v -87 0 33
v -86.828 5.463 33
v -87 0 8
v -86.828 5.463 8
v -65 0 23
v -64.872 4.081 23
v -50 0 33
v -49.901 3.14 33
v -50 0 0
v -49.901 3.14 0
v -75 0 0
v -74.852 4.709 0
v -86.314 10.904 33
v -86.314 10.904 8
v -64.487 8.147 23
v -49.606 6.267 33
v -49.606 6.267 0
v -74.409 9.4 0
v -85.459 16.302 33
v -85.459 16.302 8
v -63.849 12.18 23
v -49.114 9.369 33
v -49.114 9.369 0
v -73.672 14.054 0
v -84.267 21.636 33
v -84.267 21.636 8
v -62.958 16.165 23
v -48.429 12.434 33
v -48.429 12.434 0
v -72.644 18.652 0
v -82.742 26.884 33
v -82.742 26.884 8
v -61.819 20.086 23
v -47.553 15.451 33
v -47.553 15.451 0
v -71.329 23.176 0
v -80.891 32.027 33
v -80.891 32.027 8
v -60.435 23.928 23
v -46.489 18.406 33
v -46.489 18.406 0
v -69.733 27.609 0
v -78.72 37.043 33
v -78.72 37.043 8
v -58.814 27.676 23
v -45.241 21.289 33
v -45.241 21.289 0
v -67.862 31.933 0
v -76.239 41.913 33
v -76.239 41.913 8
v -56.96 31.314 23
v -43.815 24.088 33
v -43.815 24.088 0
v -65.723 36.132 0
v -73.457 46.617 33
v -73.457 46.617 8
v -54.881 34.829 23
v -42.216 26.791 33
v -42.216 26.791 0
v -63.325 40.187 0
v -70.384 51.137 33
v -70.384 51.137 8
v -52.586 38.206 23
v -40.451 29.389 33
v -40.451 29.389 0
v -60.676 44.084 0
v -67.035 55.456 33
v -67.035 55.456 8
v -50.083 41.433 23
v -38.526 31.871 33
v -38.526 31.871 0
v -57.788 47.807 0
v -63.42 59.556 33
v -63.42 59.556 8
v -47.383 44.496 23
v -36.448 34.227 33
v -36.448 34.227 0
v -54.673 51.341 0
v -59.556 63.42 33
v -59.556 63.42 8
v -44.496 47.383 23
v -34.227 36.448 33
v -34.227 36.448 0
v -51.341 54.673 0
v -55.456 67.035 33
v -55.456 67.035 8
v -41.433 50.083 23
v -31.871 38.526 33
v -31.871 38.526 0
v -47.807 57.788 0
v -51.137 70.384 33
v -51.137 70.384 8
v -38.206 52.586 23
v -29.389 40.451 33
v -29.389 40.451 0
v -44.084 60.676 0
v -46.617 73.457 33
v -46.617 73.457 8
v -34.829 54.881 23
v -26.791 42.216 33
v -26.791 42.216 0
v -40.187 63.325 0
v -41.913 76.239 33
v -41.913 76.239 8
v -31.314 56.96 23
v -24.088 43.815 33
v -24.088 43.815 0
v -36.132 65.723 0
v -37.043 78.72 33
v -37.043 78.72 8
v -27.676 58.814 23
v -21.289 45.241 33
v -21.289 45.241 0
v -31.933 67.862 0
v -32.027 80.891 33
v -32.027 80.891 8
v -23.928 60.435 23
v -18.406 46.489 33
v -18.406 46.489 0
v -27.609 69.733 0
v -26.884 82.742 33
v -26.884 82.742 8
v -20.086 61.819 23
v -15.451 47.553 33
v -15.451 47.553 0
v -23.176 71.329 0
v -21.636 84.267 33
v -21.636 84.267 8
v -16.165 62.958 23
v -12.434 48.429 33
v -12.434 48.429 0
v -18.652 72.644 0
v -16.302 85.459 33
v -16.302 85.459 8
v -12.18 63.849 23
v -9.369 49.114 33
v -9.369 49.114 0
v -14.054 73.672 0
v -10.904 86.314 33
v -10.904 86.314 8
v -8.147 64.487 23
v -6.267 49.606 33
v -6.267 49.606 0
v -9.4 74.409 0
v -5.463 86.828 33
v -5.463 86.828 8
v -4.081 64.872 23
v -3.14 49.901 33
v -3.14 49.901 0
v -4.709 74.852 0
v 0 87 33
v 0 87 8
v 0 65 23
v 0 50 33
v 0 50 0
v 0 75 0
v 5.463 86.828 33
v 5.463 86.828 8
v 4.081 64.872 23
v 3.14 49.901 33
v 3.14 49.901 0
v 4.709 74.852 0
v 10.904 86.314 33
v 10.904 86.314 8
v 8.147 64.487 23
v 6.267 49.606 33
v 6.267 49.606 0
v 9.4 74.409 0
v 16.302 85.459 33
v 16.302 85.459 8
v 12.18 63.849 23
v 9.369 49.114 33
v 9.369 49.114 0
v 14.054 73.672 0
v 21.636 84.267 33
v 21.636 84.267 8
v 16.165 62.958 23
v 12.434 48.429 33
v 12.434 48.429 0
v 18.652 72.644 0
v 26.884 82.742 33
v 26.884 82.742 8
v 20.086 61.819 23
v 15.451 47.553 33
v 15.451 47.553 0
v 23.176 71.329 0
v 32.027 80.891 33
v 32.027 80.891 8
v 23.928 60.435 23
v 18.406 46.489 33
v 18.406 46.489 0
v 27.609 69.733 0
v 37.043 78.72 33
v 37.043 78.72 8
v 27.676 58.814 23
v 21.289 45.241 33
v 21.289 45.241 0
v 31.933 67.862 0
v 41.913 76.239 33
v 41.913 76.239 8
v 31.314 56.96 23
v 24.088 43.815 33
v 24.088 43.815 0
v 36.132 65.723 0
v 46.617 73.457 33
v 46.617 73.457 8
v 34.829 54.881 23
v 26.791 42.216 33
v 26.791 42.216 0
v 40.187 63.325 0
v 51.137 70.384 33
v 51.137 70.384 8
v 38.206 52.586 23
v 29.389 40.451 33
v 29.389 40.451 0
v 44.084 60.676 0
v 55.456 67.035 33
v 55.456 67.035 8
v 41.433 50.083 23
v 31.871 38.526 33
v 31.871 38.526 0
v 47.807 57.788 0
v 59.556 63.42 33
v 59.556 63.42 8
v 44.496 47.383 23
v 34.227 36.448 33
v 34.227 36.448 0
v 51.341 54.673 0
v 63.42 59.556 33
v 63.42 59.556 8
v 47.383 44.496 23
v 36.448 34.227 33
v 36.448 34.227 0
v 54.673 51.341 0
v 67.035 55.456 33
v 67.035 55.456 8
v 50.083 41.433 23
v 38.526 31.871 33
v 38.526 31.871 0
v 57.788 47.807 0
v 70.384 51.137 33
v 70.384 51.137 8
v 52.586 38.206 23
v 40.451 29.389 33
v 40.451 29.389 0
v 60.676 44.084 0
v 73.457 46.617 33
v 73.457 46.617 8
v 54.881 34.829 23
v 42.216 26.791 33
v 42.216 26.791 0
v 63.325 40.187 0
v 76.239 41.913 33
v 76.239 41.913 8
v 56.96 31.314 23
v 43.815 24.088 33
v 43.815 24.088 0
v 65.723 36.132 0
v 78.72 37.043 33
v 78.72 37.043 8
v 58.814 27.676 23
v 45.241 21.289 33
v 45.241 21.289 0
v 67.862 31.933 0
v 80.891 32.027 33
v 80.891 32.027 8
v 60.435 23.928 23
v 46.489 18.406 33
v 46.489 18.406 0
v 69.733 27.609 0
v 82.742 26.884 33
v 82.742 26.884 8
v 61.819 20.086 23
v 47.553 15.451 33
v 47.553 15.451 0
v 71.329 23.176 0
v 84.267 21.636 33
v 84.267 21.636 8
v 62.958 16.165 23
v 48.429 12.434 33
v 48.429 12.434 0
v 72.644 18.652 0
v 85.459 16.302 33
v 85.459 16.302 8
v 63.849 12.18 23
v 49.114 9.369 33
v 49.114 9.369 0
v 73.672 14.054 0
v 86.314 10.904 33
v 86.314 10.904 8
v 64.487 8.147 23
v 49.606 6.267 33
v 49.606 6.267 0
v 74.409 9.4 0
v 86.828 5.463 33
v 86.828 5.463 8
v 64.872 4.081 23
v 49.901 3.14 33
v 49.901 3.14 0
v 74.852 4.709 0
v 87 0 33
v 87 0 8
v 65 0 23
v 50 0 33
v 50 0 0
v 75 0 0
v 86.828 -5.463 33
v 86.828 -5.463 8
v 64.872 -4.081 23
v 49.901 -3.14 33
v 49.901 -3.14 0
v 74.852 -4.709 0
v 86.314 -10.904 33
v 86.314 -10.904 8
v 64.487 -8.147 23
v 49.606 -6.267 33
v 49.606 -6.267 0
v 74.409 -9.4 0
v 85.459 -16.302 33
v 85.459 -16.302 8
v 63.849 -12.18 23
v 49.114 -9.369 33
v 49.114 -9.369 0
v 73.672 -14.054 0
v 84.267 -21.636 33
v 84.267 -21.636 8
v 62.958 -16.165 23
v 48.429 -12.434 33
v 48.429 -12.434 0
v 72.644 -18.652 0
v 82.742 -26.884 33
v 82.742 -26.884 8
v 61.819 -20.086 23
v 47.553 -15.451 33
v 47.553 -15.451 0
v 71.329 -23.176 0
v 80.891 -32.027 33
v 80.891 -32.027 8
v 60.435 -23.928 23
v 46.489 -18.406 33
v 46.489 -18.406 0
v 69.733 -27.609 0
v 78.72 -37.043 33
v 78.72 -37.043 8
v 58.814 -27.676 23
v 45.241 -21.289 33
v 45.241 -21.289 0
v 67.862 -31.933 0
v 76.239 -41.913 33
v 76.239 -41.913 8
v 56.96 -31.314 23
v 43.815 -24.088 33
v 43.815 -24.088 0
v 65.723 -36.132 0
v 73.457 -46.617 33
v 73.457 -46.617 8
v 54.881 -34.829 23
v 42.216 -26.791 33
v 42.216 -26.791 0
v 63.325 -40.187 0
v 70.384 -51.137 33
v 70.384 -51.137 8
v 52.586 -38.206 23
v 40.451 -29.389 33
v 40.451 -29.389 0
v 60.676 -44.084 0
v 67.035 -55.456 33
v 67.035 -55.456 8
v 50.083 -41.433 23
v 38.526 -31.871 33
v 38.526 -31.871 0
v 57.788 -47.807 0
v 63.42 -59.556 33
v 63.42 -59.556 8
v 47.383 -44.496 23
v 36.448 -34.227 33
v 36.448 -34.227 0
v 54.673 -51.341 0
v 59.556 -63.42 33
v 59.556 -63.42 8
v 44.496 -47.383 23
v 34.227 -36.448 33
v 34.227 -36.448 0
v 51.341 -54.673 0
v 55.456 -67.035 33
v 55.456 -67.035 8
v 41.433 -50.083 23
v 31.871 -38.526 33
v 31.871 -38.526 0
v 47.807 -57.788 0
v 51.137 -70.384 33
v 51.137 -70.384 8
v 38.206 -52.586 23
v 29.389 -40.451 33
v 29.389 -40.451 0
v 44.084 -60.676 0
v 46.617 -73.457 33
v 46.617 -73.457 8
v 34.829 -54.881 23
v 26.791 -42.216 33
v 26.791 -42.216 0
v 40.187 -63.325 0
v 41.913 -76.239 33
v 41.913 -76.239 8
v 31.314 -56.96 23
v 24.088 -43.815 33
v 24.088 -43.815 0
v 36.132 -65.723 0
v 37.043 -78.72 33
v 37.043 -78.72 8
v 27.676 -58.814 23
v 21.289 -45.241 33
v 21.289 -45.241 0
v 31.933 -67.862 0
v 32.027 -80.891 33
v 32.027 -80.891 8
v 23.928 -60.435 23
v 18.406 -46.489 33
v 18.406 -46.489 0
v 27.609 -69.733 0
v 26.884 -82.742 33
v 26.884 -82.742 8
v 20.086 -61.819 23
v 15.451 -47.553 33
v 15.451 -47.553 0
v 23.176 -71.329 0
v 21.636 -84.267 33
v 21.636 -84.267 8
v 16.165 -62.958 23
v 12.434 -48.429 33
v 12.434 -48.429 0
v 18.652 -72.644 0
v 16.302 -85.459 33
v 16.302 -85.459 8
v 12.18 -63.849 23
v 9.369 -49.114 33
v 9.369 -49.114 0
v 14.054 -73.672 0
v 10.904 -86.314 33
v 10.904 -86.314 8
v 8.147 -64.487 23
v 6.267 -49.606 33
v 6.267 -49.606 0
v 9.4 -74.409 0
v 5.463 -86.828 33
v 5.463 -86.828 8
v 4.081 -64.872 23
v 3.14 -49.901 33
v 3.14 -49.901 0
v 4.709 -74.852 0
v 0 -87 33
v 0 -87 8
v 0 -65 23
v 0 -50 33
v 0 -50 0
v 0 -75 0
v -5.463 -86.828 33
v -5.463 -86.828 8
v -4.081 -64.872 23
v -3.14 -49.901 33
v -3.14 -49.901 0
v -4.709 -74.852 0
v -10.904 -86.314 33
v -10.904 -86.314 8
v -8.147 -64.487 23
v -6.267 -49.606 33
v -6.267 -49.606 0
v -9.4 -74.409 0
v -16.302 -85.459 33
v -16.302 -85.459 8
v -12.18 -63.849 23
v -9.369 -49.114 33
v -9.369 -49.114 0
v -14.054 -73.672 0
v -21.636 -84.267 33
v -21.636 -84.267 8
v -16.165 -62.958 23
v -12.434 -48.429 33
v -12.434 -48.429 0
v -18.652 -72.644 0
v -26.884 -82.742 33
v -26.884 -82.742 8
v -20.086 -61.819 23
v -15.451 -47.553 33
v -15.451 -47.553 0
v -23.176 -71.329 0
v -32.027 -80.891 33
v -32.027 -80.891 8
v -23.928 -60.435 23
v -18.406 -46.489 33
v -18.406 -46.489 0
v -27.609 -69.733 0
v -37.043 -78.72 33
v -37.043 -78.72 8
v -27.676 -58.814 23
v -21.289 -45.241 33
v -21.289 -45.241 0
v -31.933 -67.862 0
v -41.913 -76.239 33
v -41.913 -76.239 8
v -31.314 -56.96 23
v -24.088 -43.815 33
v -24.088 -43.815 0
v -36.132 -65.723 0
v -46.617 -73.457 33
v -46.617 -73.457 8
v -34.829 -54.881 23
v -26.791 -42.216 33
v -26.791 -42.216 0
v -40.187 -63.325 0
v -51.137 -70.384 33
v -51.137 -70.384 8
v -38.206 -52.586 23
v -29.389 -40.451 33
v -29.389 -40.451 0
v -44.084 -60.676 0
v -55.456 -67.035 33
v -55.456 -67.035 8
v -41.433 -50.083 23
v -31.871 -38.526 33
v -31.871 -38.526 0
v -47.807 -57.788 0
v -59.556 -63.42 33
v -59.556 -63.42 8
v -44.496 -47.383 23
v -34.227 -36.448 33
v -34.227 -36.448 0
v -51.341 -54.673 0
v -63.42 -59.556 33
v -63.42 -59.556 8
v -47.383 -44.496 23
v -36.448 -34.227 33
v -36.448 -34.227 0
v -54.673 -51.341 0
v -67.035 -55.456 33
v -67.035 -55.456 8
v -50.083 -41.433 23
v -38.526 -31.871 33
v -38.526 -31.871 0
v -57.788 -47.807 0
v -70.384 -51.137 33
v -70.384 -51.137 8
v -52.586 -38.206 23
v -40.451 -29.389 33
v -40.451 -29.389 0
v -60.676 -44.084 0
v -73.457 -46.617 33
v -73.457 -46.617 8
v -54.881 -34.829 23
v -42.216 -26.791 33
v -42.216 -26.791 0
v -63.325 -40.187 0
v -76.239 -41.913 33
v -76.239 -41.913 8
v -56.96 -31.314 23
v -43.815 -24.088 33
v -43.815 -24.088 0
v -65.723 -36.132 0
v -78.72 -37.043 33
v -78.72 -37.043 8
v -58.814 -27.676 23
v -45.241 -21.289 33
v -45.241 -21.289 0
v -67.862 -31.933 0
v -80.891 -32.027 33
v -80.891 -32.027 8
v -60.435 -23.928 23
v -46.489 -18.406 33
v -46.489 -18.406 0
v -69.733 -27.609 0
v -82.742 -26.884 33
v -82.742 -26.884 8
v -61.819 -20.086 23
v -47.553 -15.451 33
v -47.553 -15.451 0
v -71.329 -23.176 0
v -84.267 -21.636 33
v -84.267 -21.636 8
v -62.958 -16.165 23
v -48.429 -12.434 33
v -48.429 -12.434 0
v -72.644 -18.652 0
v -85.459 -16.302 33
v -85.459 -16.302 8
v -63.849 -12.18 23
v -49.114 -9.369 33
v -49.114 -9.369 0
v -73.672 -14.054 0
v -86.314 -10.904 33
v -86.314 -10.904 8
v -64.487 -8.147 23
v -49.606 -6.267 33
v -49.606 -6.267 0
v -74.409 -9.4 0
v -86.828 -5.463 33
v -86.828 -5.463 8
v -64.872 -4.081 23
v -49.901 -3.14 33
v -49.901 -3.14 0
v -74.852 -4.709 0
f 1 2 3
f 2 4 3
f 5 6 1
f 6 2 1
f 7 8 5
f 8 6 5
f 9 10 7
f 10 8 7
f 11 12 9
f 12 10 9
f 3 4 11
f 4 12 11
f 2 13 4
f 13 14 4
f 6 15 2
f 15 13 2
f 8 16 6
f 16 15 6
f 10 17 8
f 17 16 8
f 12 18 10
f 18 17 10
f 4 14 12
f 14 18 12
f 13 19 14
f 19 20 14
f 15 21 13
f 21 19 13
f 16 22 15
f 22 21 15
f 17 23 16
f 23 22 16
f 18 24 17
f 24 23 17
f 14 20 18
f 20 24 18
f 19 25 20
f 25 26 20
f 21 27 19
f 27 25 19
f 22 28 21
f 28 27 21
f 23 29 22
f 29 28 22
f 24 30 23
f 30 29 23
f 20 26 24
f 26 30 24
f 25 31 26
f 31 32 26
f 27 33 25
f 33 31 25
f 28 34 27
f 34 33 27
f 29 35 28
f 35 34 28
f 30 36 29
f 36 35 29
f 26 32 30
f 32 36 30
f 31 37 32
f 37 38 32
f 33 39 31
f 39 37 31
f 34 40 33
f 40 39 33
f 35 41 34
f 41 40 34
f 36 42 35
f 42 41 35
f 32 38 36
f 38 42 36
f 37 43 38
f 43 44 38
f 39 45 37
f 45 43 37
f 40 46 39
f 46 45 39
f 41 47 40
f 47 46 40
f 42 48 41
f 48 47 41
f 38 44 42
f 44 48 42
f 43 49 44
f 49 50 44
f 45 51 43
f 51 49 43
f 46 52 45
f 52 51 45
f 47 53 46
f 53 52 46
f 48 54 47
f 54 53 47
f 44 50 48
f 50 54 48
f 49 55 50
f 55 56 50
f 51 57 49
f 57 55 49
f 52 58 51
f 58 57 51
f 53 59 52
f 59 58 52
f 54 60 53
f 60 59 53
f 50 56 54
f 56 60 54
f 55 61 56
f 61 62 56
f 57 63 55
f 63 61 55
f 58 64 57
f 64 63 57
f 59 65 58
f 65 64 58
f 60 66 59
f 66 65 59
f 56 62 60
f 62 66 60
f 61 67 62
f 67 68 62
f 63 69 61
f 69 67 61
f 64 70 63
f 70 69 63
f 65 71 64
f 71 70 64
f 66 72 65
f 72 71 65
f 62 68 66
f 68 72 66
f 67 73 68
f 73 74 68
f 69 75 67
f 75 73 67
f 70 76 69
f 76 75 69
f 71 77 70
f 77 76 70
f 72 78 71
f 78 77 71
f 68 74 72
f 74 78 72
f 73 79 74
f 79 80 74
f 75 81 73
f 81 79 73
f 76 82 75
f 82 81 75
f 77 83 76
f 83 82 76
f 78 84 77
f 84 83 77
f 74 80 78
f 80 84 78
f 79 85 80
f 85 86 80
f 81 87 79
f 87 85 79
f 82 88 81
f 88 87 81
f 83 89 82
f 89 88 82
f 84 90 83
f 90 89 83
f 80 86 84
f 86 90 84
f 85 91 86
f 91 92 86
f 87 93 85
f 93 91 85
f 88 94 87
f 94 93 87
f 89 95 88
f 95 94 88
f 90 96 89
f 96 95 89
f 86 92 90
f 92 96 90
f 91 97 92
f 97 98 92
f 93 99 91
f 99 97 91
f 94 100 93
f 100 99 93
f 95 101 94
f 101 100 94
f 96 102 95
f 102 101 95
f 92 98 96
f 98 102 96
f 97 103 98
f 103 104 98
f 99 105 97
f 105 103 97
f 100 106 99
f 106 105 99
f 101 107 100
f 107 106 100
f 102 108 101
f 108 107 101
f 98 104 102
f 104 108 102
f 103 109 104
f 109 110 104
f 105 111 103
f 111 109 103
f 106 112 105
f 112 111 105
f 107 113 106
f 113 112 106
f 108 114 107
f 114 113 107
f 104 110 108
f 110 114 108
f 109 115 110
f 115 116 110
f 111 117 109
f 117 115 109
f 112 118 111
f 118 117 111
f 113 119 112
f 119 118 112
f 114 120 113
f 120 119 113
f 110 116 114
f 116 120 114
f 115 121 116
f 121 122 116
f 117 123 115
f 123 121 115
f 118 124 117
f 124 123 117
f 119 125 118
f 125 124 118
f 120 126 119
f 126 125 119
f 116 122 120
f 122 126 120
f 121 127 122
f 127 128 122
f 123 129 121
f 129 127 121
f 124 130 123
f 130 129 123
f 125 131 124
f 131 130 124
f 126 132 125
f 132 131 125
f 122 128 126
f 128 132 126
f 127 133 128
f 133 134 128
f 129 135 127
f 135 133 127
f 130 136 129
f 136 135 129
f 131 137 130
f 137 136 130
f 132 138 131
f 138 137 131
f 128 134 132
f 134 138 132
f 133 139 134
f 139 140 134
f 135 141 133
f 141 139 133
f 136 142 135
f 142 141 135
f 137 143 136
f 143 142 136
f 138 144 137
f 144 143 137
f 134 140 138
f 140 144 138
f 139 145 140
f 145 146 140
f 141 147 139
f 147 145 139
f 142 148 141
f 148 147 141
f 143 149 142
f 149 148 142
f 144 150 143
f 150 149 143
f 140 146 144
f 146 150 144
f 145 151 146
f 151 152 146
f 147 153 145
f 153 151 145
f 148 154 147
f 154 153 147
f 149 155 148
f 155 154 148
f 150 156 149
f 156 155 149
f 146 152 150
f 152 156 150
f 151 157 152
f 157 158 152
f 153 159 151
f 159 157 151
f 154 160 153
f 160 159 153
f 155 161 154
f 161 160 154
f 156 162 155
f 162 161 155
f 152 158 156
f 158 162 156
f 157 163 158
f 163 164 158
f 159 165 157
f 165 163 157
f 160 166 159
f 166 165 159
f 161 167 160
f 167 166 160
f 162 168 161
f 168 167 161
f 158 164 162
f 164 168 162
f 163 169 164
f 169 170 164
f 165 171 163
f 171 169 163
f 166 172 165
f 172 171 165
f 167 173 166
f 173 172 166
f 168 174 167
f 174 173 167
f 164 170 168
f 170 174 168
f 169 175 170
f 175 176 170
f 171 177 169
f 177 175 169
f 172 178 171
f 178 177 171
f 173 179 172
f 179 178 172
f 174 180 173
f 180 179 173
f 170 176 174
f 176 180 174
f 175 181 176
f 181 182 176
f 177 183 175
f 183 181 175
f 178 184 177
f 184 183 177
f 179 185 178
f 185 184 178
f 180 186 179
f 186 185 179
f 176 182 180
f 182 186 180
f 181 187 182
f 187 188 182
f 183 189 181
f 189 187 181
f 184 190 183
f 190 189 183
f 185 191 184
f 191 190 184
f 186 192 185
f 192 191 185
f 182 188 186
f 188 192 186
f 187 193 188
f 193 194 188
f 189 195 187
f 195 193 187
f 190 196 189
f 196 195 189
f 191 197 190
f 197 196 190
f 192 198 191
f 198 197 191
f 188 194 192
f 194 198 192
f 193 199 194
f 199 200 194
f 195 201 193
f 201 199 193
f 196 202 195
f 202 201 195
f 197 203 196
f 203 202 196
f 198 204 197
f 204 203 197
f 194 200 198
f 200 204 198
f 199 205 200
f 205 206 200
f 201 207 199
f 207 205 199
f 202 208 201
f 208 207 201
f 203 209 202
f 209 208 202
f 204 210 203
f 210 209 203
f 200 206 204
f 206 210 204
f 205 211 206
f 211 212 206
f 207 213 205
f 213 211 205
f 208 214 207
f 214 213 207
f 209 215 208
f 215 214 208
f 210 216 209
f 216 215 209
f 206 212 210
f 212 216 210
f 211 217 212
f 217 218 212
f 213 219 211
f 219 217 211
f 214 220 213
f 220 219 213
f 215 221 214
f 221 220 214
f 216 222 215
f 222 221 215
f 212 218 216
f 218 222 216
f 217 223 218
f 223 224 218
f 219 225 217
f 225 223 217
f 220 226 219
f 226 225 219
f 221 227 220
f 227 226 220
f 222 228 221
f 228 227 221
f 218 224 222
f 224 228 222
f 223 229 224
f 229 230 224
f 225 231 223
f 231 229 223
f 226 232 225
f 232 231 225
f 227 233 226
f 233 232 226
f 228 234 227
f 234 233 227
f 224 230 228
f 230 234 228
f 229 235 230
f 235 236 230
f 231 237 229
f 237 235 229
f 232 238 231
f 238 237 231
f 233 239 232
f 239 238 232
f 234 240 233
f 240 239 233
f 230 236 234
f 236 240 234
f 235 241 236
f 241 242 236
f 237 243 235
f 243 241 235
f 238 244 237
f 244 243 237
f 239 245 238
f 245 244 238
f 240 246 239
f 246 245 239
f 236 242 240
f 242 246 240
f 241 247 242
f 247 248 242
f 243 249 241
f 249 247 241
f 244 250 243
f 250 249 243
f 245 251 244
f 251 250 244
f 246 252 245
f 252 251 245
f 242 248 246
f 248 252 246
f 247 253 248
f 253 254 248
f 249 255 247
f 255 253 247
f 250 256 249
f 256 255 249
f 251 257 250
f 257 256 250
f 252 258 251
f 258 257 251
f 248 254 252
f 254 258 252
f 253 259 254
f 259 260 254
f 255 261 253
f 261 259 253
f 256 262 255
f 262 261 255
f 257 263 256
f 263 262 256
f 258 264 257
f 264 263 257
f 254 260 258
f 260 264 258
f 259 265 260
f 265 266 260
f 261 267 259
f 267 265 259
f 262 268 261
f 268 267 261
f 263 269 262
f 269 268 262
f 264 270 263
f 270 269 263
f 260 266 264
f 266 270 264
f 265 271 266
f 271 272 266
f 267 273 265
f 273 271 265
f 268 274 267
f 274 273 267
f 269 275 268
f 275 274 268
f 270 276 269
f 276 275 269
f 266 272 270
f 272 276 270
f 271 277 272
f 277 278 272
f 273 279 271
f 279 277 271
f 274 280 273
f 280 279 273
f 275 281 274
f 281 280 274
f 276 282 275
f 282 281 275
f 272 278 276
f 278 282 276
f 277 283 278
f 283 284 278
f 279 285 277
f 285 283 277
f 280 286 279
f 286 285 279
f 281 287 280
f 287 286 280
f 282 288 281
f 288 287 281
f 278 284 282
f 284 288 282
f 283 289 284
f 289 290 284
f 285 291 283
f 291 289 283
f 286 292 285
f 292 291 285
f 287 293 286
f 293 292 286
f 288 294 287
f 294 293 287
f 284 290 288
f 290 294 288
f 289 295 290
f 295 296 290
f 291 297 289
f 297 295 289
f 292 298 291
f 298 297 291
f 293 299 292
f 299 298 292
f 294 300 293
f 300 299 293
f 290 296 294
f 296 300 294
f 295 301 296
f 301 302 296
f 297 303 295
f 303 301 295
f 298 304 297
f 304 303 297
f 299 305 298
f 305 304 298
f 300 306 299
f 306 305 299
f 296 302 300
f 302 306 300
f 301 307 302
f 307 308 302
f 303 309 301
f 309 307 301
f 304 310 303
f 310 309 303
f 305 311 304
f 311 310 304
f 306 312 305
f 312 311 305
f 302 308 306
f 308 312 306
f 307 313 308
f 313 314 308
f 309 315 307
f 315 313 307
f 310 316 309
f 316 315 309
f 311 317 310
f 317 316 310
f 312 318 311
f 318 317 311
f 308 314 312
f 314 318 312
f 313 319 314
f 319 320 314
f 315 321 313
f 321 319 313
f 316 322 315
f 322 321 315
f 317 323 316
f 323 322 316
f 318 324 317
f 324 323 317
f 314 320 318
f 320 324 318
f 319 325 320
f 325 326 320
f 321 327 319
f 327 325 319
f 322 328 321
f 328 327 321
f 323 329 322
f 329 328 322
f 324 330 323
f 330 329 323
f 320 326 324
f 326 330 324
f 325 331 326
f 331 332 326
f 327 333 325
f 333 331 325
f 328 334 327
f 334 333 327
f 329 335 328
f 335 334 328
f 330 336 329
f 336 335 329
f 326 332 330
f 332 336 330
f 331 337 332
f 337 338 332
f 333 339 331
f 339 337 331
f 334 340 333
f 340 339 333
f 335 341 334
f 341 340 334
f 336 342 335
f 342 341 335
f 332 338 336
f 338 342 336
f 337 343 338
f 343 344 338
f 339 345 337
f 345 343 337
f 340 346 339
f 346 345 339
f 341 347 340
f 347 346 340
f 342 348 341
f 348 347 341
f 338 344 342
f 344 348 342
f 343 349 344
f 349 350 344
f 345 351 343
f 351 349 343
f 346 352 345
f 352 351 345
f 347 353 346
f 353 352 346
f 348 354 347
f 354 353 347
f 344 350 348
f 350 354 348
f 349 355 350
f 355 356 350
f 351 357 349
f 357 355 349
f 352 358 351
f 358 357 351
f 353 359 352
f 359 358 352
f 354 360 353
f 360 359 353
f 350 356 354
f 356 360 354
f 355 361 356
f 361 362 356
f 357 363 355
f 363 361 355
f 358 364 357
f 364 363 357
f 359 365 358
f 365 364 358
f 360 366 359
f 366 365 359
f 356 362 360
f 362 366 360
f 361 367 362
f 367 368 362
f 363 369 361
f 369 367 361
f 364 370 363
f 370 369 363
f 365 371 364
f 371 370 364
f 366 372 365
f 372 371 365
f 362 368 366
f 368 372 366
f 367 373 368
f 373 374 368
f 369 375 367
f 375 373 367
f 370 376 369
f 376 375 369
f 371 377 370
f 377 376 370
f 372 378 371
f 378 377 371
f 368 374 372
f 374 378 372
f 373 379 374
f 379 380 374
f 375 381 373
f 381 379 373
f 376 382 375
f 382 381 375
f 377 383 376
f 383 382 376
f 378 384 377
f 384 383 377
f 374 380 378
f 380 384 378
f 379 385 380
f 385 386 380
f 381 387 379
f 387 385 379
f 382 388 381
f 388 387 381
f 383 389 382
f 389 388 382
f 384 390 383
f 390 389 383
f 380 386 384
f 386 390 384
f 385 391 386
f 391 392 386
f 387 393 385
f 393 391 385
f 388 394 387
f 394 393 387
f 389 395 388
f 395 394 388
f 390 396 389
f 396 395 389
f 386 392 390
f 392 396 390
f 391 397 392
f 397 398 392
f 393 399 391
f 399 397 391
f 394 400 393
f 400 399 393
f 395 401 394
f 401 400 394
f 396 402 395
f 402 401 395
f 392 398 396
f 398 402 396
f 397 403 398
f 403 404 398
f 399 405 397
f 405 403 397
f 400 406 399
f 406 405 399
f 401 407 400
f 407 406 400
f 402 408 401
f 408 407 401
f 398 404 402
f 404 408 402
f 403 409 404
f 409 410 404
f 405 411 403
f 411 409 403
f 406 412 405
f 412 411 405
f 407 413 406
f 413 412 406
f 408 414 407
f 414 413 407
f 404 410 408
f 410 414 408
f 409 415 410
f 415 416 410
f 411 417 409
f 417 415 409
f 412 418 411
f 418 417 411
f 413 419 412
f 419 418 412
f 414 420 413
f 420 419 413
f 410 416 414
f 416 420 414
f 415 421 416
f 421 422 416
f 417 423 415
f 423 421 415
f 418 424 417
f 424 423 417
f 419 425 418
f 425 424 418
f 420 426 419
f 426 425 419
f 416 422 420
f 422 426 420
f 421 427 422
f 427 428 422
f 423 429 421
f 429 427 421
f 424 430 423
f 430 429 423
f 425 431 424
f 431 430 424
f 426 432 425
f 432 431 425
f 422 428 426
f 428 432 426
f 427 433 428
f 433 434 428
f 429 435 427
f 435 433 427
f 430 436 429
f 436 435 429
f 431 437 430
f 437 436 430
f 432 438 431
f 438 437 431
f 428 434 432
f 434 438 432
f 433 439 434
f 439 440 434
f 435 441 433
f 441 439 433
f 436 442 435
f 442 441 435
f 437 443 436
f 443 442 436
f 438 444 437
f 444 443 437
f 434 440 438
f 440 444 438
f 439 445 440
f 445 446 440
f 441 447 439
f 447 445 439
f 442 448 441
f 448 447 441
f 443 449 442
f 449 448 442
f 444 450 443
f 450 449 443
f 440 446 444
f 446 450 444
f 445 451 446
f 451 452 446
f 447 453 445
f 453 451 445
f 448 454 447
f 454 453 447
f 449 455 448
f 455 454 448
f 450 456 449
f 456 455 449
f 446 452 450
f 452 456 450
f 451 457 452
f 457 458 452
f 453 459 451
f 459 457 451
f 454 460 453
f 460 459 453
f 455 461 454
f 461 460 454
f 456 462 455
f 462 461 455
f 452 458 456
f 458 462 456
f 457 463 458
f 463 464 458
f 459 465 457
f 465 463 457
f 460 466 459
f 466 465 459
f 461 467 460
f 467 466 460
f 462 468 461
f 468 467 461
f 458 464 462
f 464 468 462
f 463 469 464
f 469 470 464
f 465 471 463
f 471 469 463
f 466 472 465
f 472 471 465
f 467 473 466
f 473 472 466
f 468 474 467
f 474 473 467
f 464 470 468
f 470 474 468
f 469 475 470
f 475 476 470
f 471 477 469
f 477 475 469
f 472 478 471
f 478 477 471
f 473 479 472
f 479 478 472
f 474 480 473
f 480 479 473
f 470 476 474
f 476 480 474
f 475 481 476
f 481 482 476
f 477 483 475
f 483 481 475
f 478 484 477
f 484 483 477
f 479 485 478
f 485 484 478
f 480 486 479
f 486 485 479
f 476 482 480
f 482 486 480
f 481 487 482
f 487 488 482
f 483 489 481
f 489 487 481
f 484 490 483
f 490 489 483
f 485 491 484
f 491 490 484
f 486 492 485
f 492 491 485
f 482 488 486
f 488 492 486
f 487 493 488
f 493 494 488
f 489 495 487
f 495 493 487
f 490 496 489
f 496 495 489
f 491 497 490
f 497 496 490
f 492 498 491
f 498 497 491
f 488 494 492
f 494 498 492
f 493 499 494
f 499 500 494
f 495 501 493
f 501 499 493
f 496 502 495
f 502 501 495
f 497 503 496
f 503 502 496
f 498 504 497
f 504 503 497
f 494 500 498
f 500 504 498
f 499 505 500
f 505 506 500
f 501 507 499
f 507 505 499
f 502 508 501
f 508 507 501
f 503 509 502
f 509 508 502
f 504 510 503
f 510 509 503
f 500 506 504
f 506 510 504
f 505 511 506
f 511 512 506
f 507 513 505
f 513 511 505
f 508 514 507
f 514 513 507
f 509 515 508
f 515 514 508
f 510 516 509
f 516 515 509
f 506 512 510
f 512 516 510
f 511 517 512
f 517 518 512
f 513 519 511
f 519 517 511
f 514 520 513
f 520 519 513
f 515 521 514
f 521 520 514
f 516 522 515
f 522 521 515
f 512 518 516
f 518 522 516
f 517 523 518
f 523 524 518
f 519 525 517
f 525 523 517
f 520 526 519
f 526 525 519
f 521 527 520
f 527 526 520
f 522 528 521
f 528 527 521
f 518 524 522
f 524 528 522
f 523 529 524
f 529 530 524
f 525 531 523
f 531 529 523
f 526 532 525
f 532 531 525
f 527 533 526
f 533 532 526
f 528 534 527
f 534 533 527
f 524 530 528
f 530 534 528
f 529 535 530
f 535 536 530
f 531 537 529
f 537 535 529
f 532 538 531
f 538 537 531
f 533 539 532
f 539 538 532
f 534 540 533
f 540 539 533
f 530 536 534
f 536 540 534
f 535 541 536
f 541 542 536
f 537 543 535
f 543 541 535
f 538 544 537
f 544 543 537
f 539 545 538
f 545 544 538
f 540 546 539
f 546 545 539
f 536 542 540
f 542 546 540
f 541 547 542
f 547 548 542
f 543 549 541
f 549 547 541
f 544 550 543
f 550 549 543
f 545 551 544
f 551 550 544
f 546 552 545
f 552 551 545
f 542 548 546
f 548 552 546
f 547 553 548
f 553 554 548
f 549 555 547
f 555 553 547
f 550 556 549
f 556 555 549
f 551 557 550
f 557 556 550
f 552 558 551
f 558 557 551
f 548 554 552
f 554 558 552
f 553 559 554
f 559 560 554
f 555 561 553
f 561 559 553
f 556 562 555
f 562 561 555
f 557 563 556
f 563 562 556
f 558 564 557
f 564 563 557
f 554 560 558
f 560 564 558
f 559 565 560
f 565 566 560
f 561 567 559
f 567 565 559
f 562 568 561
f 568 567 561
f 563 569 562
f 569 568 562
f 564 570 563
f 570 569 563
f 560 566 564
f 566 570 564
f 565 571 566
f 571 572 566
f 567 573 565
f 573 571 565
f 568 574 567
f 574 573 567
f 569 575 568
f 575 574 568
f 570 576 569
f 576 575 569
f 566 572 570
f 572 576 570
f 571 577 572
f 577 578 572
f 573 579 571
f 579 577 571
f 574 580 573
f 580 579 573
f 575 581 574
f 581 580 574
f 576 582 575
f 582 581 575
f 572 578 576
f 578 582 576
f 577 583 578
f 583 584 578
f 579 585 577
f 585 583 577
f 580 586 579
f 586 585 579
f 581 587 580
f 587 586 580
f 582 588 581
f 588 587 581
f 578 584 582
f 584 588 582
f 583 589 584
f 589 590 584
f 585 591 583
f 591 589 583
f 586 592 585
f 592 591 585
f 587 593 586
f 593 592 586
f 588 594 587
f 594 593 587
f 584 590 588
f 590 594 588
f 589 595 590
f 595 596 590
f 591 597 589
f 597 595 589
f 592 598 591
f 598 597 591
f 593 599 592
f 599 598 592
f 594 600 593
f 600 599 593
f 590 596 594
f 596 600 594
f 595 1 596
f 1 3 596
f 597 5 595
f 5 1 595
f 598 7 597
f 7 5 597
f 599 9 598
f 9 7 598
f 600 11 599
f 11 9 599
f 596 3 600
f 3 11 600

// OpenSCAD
$fn=100;

// Given dimensions
d1 = 25;
d2 = 12;
d3 = 15;
h1 = 23;
h2 = 10;
h3 = 8;

// Points
p0 = [0,0];
p1 = [0,h1+h2];
p2 = [d3,h1];
p3 = [d1+d2,h1+h2];
p4 = [d1+d2,h3];
p5 = [d1,0];

points = [p0, p1, p2, p3, p4, p5];

echo(points);

rotate_extrude(angle=360)
    translate([50,0])
    polygon(points);
